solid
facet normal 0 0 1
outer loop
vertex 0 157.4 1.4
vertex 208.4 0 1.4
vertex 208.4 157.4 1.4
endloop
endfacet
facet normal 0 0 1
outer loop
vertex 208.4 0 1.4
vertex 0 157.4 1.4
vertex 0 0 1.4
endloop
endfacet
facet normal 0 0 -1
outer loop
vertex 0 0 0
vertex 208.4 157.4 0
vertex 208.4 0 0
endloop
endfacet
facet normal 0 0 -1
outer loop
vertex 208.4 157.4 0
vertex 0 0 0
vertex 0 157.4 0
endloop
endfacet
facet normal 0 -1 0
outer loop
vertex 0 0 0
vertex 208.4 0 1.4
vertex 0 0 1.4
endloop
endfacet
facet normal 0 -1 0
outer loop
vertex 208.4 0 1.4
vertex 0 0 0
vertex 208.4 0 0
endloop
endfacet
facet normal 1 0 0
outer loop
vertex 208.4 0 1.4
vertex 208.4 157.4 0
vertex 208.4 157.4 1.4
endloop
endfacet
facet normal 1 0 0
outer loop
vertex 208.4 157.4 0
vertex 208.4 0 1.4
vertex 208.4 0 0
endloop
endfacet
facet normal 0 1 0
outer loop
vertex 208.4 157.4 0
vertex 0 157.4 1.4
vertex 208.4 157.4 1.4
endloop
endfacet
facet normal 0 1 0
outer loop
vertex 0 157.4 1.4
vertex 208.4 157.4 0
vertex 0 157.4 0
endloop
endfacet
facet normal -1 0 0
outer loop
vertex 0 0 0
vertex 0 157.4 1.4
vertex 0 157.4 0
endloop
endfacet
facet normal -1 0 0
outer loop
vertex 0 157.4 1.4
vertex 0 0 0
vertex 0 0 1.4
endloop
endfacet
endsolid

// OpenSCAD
/* basic dimensions, make sure these match your base*/
width  = 210;   // outer x dimension in mm
length = 160;   // outer y dimension in mm
walls  = 0.8;   // wall thickness in mm, two perimeters
/* -------- */

/* build */
union() {    
    cube([width - walls * 2, length - walls * 3.25, walls* 1.75]);
}
